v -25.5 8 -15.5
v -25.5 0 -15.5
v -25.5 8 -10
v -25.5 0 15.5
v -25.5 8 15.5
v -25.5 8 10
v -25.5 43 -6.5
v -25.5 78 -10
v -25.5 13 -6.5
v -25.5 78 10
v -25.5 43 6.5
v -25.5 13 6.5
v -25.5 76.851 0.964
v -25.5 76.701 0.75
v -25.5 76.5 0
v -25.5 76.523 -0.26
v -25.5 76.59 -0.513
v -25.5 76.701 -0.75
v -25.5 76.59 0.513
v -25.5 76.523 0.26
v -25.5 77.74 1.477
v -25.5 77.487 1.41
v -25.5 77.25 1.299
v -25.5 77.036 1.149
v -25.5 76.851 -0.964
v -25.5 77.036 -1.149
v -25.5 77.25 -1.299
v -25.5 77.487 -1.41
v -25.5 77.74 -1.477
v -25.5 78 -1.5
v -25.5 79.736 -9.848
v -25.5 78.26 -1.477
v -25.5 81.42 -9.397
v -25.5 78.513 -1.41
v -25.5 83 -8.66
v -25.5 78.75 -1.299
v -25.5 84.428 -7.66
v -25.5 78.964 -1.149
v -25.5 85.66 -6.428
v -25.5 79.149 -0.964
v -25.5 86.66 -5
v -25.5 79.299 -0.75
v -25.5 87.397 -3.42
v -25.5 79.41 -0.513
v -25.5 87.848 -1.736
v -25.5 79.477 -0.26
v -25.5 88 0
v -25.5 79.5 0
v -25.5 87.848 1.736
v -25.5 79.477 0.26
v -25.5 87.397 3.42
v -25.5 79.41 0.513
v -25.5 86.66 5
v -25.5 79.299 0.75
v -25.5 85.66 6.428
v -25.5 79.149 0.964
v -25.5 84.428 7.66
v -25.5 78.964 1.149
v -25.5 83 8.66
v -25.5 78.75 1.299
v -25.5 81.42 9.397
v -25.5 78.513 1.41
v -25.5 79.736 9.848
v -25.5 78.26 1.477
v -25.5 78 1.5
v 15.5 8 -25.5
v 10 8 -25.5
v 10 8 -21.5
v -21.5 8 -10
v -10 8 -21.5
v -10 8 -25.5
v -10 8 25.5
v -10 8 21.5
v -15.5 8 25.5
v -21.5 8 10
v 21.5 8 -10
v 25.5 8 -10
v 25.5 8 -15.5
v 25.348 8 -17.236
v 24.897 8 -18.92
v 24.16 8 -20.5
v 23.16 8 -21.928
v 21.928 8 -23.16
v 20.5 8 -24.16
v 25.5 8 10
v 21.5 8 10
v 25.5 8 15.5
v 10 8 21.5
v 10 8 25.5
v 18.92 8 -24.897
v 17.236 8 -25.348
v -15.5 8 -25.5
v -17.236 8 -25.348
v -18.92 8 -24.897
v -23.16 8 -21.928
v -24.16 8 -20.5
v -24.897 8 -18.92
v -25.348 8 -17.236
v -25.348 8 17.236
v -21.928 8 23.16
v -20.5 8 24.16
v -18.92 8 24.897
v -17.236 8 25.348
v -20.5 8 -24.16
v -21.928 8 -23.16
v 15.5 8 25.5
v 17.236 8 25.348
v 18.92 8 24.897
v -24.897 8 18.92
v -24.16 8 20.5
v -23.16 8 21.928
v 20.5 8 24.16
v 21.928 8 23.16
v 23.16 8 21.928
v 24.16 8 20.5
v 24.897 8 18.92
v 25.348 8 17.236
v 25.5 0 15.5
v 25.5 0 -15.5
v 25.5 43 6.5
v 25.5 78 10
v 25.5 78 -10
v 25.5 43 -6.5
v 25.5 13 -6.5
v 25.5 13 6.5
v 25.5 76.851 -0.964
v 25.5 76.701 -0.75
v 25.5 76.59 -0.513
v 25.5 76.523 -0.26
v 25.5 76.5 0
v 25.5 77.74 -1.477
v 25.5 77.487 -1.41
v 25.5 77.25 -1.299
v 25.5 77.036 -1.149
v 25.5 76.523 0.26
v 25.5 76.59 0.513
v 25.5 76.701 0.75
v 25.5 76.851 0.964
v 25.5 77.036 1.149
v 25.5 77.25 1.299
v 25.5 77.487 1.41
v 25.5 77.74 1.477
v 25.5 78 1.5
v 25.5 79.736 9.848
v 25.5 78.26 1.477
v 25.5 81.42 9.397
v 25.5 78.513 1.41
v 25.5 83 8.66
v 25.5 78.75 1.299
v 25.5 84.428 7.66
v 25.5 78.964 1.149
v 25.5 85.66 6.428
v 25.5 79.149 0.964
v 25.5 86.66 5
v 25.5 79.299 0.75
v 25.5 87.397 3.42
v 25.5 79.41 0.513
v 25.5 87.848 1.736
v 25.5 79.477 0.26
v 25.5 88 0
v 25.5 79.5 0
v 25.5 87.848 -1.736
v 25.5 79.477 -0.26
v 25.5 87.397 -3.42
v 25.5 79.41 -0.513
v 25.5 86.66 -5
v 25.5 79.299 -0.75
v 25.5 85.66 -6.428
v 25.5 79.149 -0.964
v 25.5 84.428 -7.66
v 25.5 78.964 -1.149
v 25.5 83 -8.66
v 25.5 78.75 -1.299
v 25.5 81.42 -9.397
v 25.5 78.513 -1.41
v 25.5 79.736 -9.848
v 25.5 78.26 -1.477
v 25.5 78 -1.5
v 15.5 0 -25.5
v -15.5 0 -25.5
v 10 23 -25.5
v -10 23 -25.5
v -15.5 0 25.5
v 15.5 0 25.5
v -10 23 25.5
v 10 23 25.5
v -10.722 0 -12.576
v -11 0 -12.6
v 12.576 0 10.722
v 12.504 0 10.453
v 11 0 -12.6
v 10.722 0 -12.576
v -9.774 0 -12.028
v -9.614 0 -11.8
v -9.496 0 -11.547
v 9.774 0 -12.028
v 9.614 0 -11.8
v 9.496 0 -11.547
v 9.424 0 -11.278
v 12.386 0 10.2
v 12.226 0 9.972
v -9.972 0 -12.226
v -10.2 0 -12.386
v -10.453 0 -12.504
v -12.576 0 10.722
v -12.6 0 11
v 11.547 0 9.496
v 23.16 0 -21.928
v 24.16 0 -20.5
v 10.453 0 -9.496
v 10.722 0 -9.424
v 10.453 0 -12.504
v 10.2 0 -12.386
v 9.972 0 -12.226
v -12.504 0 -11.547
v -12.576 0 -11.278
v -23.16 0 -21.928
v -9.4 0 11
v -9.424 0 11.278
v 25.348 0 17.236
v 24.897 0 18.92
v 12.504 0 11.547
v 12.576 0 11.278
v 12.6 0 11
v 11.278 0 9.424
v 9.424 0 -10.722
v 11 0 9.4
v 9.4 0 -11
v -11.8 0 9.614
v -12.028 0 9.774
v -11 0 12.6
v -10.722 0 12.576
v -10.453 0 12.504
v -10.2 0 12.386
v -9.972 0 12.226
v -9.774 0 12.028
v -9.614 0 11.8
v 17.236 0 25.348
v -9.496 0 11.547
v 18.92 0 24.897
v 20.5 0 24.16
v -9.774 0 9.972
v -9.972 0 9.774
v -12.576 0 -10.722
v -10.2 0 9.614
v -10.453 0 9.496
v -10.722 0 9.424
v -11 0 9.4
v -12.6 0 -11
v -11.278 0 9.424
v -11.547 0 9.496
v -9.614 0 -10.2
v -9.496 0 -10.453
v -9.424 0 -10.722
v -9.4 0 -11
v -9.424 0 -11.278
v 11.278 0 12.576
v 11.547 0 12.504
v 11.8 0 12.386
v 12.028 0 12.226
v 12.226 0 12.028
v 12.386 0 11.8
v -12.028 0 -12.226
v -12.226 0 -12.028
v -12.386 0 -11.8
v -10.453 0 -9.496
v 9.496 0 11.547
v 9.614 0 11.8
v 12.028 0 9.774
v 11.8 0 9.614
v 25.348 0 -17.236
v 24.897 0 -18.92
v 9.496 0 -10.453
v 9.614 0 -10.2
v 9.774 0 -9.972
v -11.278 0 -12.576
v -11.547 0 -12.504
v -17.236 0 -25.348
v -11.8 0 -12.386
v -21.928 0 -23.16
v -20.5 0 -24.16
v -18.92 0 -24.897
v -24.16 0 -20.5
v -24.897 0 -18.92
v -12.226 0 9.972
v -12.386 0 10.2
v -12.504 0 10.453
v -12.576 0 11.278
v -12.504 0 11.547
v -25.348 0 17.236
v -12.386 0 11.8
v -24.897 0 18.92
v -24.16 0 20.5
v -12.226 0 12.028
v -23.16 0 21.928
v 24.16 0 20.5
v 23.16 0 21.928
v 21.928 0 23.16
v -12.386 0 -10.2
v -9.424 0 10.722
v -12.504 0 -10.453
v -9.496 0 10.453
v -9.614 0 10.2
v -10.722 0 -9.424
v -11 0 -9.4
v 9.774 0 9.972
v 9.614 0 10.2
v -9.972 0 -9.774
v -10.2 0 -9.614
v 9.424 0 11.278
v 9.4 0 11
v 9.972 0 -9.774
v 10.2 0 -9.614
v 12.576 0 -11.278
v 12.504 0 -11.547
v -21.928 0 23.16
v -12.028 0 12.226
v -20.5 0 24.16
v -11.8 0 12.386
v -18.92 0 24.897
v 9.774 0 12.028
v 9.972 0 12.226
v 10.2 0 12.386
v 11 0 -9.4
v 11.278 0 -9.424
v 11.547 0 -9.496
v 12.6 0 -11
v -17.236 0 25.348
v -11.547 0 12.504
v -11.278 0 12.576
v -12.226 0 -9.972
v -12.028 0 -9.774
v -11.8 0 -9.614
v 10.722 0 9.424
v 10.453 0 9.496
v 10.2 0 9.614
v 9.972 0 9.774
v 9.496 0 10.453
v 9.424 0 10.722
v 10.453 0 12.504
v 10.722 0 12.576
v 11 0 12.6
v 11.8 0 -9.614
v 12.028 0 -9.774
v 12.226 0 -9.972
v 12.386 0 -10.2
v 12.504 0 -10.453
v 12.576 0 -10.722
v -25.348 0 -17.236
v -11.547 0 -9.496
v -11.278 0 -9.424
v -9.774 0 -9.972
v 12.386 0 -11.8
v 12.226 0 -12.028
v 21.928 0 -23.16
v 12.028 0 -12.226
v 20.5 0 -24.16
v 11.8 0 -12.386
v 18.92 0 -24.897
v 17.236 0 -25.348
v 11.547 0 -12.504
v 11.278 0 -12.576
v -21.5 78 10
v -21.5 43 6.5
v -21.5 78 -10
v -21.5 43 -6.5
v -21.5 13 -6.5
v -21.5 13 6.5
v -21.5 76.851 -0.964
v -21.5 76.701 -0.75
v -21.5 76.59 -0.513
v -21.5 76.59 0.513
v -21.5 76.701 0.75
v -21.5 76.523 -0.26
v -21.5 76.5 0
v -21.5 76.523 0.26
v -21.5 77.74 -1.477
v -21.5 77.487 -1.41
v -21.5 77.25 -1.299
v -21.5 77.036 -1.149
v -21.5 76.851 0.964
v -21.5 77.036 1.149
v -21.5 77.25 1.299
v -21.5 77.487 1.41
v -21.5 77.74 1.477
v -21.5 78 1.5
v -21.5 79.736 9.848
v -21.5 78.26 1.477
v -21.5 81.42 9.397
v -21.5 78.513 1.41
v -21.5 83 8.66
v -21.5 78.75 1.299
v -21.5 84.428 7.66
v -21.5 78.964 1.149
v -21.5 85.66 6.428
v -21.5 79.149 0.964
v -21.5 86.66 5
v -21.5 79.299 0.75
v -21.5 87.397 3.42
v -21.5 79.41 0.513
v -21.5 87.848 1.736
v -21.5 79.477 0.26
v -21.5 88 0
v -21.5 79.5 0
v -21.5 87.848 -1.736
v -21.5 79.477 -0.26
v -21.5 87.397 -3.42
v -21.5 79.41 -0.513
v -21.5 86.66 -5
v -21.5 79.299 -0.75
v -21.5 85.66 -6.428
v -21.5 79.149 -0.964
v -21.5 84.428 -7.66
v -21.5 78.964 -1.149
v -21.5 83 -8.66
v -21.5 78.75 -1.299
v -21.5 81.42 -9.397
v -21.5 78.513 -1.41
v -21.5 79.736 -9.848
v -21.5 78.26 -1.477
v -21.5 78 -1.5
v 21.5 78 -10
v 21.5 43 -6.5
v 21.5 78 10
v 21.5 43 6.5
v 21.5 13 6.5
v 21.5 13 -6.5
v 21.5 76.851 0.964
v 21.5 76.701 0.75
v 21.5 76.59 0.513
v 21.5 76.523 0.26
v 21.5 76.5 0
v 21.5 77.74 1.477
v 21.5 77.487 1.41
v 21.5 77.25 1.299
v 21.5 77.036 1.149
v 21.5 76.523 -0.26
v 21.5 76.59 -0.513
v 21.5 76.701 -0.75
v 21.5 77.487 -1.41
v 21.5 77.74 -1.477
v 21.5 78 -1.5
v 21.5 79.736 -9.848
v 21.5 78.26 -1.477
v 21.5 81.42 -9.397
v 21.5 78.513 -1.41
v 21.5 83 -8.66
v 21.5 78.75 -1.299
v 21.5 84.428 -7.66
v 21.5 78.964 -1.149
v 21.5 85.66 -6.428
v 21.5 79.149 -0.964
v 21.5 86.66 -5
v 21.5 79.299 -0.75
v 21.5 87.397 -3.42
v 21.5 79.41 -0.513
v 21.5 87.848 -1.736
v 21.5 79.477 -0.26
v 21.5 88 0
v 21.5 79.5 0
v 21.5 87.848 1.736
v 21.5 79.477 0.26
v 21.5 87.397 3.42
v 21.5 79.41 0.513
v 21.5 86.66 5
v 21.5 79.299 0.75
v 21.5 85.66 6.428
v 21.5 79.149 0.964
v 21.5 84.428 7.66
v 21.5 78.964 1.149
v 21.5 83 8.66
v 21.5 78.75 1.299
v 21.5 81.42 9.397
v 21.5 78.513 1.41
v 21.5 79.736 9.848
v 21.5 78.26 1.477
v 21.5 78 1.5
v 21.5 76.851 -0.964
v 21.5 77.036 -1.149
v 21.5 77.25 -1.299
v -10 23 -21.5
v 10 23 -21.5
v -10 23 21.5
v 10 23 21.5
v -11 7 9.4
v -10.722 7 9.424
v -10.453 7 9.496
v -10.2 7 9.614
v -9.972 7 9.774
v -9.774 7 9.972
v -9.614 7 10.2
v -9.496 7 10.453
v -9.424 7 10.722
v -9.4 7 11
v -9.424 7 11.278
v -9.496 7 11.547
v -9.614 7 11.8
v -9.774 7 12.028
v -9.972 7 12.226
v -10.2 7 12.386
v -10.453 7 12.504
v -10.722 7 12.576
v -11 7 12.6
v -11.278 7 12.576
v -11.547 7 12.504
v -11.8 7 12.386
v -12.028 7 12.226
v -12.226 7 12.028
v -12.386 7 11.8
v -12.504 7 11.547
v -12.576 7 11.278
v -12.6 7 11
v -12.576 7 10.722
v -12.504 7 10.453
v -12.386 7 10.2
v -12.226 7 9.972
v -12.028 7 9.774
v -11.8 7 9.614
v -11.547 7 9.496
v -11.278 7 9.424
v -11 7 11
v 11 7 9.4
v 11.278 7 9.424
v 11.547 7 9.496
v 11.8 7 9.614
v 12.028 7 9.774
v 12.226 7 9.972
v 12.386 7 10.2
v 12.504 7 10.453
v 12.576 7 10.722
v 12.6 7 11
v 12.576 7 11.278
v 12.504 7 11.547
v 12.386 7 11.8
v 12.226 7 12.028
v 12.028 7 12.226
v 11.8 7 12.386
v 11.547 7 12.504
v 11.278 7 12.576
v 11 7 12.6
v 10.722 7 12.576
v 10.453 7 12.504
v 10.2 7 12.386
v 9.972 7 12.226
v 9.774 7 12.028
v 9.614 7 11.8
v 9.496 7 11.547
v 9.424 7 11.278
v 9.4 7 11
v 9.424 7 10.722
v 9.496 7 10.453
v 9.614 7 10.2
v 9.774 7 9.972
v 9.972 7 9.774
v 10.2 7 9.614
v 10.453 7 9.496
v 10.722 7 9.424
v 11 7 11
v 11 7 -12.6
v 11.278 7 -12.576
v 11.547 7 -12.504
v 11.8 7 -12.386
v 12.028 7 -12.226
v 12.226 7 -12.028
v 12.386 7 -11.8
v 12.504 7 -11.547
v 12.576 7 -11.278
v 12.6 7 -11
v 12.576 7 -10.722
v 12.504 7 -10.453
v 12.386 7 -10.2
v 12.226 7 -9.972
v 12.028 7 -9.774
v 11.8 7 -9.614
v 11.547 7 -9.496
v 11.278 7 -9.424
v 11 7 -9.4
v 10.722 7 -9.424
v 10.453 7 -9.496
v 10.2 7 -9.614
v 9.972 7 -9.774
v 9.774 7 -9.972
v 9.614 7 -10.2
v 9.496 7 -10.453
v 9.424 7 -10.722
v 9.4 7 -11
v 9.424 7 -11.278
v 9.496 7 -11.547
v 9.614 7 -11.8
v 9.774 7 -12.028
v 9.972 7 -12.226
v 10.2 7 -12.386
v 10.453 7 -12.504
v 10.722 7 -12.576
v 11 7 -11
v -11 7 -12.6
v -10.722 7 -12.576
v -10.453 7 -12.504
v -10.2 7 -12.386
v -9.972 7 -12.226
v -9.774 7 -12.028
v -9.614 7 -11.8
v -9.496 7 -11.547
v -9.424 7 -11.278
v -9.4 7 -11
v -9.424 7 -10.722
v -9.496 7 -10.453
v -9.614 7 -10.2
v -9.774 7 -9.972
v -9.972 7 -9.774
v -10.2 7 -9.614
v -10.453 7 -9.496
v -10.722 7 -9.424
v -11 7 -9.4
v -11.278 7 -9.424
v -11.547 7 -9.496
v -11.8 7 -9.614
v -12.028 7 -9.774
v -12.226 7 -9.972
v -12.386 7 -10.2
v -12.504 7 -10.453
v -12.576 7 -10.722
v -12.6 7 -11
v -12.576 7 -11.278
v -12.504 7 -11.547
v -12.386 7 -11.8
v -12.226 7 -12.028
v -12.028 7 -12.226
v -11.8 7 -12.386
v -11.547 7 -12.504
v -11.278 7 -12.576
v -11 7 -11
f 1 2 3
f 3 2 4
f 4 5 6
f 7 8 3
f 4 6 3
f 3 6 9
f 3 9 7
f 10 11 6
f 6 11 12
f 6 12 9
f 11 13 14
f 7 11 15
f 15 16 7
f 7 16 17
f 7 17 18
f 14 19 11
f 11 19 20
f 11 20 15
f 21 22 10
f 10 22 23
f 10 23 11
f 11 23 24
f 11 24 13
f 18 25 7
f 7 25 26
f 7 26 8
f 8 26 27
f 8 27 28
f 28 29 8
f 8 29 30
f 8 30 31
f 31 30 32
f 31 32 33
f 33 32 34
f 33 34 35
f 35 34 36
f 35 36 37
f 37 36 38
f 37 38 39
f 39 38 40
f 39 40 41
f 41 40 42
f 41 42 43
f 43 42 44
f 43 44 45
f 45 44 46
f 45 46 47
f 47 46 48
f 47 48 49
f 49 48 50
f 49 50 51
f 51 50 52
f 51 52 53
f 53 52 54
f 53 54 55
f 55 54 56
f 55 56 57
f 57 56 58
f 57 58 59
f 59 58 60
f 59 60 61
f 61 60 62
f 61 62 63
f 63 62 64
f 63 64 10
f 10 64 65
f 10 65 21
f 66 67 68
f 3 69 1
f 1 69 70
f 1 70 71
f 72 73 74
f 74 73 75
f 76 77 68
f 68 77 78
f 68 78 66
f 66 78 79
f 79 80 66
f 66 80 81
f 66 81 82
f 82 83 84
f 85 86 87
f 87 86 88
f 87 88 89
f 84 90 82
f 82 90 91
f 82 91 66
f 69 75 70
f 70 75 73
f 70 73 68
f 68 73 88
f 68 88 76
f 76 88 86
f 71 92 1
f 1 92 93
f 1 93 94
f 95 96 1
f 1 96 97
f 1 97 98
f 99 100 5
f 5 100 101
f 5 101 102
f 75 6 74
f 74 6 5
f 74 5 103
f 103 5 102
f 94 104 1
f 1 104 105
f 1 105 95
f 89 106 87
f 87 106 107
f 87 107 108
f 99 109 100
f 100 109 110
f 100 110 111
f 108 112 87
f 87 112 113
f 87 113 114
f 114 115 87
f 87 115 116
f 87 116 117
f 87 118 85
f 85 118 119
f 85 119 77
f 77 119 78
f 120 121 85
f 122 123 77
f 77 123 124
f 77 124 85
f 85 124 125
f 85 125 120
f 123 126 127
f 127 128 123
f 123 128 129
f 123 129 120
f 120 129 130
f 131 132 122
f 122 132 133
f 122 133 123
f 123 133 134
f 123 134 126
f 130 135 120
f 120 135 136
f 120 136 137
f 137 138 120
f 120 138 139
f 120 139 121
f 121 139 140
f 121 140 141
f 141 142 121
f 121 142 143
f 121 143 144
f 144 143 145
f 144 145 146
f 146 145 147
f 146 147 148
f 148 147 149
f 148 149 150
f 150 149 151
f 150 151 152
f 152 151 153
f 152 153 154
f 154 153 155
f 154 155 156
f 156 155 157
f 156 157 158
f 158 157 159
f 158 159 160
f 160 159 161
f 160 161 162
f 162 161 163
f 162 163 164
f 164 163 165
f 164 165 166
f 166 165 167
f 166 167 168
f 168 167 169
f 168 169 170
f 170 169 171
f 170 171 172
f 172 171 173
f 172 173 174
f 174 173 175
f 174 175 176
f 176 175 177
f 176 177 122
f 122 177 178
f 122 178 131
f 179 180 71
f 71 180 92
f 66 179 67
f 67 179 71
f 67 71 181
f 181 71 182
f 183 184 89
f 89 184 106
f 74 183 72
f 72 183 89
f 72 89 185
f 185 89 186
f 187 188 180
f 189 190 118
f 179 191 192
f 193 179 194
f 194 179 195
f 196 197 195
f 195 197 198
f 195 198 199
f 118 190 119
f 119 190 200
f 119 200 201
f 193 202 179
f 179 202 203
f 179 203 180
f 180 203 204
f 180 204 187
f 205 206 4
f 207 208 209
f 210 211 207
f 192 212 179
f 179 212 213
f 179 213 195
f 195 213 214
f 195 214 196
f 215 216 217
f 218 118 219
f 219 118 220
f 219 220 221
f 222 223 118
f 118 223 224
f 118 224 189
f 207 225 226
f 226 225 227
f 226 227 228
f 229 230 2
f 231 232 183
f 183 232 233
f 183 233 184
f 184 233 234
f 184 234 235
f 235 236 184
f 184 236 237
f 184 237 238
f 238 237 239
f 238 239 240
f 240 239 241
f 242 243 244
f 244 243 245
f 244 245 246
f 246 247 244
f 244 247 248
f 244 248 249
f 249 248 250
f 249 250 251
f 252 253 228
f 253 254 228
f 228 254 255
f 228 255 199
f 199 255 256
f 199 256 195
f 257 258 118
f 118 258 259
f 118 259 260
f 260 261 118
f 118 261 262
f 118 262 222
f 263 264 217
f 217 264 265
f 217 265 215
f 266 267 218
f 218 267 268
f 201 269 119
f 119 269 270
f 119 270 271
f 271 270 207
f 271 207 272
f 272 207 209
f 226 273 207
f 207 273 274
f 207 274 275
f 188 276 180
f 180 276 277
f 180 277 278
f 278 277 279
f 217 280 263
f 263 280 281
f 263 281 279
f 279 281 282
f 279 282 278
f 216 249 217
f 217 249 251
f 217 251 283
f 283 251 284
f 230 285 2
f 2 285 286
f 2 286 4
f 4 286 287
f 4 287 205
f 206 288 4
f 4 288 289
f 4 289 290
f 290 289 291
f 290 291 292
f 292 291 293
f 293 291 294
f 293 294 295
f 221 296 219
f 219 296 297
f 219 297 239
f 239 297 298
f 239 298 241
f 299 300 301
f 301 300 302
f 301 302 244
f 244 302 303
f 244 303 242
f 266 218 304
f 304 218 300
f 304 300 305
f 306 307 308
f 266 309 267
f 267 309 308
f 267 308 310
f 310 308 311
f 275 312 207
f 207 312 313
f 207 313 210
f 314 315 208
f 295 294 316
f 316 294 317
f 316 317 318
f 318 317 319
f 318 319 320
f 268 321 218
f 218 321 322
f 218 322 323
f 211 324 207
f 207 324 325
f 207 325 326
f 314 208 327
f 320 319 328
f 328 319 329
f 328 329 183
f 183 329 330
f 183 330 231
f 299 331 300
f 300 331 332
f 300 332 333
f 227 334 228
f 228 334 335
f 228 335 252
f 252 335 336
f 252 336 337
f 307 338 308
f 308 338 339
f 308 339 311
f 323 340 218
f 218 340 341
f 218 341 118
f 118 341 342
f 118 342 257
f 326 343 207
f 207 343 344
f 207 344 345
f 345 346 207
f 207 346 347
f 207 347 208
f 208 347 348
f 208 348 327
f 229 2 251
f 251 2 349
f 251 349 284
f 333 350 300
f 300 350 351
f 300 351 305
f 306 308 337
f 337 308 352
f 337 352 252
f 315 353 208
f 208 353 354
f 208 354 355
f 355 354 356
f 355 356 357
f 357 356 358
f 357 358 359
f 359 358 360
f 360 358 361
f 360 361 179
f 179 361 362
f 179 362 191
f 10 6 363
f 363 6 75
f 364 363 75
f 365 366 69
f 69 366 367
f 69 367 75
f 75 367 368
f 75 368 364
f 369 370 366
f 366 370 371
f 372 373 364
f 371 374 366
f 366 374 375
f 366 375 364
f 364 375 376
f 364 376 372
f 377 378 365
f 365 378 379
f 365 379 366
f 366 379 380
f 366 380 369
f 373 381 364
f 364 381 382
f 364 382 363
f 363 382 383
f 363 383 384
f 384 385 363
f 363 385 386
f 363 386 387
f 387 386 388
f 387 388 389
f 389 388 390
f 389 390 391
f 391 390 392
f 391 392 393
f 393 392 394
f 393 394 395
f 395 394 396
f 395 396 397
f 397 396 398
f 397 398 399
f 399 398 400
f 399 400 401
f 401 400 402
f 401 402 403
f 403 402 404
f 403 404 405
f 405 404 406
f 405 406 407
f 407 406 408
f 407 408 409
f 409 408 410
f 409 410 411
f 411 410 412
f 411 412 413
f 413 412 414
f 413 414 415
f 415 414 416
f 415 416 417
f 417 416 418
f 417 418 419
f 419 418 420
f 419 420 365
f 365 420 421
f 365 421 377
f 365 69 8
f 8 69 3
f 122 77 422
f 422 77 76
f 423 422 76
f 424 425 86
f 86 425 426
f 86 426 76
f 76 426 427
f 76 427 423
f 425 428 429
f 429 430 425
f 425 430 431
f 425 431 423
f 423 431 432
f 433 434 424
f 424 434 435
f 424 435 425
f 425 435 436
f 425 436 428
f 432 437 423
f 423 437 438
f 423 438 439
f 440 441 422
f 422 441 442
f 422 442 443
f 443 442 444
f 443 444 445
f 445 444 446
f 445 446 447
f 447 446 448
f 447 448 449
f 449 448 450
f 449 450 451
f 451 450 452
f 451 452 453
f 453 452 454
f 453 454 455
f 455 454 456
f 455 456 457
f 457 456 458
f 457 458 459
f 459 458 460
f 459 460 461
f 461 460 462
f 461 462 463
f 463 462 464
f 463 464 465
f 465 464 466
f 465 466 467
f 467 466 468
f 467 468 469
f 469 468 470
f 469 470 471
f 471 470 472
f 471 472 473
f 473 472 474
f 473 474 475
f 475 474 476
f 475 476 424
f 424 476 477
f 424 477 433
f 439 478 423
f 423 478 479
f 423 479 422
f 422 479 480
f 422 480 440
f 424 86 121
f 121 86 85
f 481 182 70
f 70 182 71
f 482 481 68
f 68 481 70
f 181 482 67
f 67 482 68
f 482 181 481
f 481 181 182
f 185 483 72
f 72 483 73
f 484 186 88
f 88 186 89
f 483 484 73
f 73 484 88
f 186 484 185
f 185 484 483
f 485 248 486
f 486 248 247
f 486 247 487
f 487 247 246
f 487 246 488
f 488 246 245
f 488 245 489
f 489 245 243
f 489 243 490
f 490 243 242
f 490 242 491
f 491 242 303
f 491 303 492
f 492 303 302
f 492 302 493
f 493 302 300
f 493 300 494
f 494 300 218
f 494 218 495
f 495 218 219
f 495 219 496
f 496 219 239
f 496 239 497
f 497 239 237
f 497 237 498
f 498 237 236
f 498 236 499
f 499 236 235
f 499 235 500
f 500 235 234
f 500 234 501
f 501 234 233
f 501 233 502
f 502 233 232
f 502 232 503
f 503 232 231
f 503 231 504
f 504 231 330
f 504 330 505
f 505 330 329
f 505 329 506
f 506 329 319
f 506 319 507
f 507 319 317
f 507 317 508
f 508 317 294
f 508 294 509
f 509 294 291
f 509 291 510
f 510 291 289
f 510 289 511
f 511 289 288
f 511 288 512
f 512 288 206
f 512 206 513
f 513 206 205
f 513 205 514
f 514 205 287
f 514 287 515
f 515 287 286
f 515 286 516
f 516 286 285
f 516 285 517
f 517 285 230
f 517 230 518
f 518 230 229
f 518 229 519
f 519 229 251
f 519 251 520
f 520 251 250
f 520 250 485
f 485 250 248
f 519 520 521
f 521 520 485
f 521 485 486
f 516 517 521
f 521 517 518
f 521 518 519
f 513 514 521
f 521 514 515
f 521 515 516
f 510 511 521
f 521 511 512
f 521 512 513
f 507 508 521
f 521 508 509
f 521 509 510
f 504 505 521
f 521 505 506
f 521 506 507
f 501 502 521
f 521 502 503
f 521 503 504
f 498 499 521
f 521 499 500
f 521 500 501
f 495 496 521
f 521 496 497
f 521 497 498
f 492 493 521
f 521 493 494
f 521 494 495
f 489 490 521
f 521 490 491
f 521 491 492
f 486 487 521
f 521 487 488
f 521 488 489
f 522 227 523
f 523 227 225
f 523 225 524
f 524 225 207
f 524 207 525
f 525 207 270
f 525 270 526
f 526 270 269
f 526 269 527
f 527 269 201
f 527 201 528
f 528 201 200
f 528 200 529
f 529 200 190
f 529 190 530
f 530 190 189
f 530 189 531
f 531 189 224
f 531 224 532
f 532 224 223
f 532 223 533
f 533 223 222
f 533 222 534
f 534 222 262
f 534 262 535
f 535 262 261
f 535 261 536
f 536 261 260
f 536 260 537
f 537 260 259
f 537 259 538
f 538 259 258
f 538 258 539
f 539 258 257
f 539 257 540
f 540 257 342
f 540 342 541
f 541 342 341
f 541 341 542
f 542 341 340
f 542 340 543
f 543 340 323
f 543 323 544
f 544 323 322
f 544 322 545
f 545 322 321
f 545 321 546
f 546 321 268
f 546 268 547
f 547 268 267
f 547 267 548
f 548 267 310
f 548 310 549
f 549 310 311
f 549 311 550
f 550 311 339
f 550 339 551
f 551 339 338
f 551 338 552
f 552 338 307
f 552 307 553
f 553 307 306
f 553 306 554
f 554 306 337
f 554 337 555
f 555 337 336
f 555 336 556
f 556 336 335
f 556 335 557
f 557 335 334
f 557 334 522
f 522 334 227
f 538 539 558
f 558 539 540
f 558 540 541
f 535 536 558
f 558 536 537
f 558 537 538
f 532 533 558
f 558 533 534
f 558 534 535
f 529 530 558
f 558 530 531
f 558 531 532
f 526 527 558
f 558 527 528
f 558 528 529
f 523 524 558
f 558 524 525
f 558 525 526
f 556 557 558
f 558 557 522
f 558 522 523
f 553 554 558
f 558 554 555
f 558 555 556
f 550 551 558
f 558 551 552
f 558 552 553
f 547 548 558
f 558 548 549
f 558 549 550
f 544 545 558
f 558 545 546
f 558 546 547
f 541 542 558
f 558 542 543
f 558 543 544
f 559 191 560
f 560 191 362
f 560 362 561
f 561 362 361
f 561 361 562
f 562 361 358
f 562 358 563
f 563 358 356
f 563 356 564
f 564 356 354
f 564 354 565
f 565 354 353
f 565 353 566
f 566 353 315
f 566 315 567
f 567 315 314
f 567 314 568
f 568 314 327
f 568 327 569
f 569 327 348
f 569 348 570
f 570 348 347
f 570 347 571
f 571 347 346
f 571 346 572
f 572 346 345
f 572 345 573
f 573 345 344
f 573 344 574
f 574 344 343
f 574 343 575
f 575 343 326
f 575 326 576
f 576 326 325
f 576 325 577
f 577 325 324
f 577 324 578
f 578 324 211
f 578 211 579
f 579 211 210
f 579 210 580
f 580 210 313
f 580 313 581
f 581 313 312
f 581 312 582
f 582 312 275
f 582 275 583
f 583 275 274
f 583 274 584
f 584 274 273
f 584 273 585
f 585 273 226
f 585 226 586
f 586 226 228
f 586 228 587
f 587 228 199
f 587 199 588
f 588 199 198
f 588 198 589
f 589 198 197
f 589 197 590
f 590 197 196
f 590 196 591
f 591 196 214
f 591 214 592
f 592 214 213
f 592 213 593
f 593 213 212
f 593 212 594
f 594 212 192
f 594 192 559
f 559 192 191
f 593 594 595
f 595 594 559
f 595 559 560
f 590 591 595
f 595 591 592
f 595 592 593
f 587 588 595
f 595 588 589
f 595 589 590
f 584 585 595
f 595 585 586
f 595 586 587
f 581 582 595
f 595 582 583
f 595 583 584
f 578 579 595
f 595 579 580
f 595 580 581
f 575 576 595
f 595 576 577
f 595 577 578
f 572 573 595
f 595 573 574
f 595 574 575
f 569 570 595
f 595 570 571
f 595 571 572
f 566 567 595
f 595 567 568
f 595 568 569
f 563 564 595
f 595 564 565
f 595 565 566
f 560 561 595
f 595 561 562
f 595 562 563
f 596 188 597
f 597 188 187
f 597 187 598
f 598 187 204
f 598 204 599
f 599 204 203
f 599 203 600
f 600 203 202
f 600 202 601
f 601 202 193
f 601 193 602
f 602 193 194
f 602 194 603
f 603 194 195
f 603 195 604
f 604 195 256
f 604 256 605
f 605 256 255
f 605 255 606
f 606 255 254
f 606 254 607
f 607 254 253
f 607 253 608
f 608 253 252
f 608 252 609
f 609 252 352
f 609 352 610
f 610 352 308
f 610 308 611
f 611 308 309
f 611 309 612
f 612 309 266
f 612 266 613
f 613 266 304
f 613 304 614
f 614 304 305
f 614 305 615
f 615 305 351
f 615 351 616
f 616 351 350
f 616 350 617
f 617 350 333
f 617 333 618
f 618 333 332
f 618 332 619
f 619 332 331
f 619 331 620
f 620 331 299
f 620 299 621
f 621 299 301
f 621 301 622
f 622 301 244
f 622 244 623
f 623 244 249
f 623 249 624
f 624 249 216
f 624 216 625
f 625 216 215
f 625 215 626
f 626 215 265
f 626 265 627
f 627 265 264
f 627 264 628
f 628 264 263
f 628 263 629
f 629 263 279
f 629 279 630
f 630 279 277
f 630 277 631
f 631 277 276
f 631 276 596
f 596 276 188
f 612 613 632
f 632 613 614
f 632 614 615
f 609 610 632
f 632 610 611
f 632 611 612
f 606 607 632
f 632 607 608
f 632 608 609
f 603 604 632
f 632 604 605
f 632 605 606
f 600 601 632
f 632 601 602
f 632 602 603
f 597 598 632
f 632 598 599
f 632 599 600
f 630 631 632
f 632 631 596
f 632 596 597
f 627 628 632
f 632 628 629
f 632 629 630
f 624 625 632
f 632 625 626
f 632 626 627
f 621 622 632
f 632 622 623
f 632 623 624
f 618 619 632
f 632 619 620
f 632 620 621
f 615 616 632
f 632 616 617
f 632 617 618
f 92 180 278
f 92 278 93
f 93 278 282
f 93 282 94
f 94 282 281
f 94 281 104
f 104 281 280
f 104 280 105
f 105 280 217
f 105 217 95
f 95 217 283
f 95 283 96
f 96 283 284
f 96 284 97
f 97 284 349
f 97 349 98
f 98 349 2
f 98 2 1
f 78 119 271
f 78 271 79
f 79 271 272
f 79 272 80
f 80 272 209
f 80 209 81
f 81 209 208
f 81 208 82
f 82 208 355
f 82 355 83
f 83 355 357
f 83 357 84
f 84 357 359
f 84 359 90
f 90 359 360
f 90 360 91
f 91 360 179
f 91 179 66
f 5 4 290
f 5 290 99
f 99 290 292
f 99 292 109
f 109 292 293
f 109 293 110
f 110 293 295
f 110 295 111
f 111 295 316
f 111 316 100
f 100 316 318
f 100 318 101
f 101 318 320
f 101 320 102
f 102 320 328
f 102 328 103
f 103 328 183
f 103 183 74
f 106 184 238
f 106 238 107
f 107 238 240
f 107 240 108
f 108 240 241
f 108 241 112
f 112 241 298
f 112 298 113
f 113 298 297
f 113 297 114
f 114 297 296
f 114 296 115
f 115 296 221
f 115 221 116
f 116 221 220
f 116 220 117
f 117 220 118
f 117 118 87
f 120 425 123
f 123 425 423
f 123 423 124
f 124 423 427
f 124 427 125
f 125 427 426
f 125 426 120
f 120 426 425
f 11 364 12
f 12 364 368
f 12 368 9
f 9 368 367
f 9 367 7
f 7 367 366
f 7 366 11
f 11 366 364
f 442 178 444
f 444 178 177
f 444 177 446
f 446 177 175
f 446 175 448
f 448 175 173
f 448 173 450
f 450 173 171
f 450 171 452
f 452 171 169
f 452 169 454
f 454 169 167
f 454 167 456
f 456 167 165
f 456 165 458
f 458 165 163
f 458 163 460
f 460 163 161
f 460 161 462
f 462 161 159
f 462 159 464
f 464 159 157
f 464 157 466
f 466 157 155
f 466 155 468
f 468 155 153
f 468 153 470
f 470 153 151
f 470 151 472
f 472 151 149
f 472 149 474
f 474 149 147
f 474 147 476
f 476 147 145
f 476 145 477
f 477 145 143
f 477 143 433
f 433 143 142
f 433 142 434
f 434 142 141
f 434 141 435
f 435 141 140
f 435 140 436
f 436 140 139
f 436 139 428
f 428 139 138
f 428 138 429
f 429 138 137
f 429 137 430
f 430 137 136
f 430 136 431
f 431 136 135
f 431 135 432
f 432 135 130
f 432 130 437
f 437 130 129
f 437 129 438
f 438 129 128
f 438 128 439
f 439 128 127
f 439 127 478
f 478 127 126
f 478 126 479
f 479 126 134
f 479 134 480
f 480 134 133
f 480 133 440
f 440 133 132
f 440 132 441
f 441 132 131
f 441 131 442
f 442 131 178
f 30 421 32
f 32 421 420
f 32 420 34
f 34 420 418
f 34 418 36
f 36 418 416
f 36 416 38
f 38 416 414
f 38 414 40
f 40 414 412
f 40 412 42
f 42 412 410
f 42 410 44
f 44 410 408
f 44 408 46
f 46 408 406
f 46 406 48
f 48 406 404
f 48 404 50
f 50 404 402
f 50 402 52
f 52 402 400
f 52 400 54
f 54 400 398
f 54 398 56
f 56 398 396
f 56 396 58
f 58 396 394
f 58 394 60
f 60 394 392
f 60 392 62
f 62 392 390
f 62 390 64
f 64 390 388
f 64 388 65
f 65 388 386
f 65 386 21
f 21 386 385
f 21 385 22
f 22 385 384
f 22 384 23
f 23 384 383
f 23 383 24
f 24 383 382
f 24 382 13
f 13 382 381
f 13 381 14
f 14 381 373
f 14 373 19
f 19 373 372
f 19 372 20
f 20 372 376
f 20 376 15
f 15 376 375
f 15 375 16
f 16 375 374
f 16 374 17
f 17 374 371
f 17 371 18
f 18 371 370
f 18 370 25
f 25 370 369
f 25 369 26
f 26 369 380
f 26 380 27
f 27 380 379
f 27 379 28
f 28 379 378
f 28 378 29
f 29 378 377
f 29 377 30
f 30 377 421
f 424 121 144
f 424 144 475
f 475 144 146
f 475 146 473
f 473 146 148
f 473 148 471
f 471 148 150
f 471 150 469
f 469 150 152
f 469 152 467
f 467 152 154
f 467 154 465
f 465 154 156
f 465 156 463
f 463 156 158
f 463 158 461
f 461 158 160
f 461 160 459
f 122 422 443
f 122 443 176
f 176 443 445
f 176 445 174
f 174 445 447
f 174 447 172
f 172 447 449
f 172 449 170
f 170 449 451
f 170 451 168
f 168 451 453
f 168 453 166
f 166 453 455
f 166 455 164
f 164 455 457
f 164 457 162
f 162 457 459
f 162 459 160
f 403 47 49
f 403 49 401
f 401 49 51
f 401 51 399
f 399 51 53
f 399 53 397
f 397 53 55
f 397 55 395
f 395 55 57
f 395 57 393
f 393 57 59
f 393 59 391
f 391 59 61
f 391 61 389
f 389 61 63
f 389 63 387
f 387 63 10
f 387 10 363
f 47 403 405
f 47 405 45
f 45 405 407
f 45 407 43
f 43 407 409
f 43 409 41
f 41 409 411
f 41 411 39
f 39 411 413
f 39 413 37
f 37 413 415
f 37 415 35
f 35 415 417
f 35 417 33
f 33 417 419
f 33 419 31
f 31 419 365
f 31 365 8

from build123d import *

# Parameters (mm, degrees)
ESBO_O1_W                  = 51
ESBO_O1_H                  = 51
RESSALTO_EXTRUS_O1_DEPTH   = 8
ESBO_O2_W                  = 4
ESBO_O2_H                  = 20
RESSALTO_EXTRUS_O2_DEPTH   = 80
ESBO_O4_W                  = 20
ESBO_O4_H                  = 4
RESSALTO_EXTRUS_O3_DEPTH   = 15
ESBO_O5_R                  = 1.6
CORTE_EXTRUS_O2_DEPTH      = 7
FILETE2_R                  = 10
CORTE_EXTRUS_O3_DEPTH      = 105.858237635
CORTE_EXTRUS_O3_DEPTH_BACK = 105.858237635
ESBO_O6_W                  = 13
ESBO_O6_H                  = 30
ESBO_O7_R                  = 1.5
CORTE_EXTRUS_O4_DEPTH      = 105.858237635
FILETE6_R                  = 10


with BuildPart() as part:
    # Esboço1 → Ressalto-extrusão1 (new body)
    with BuildSketch(Plane(origin=(0, 0, 0), x_dir=(1, 0, 0), z_dir=(0, 1, 0))):
        Rectangle(ESBO_O1_W, ESBO_O1_H)
    extrude(amount=RESSALTO_EXTRUS_O1_DEPTH)

    # Esboço2 → Ressalto-extrusão2 (add)
    with BuildSketch(Plane(origin=(0, 8, 0), x_dir=(1, 0, 0), z_dir=(0, 1, 0))):
        with Locations((-23.5, 0)):
            Rectangle(ESBO_O2_W, ESBO_O2_H)
        with Locations((23.5, 0)):
            Rectangle(ESBO_O2_W, ESBO_O2_H)
    extrude(amount=RESSALTO_EXTRUS_O2_DEPTH)

    # Esboço4 → Ressalto-extrusão3 (add)
    with BuildSketch(Plane(origin=(0, 8, 0), x_dir=(1, 0, 0), z_dir=(0, 1, 0))):
        with Locations((0, 23.5)):
            Rectangle(ESBO_O4_W, ESBO_O4_H)
        with Locations((0, -23.5)):
            Rectangle(ESBO_O4_W, ESBO_O4_H)
    extrude(amount=RESSALTO_EXTRUS_O3_DEPTH)

    # Esboço5 → Corte-extrusão2 (cut)
    with BuildSketch(Plane.XZ):
        with Locations(Location((-11, 11, 0), (0, 0, 270))):
            Circle(ESBO_O5_R)
        with Locations(Location((11, 11, 0), (0, 0, 90))):
            Circle(ESBO_O5_R)
        with Locations(Location((11, -11, 0), (0, 0, 270))):
            Circle(ESBO_O5_R)
        with Locations(Location((-11, -11, 0), (0, 0, 90))):
            Circle(ESBO_O5_R)
    extrude(amount=-CORTE_EXTRUS_O2_DEPTH, mode=Mode.SUBTRACT)

    # Filete2
    filete2_edges = [part.edges().sort_by_distance(p)[0] for p in [
        (25.5, 4, 25.5),
        (-25.5, 4, 25.5),
        (-25.5, 4, -25.5),
        (25.5, 4, -25.5),
    ]]
    fillet(filete2_edges, radius=FILETE2_R)

    # Esboço6 → Corte-extrusão3 (cut, two sides: drawn at the far end of the back side and taken through both)
    with BuildSketch(Plane.ZY.offset(25.5).offset(-CORTE_EXTRUS_O3_DEPTH_BACK)):
        with Locations((0, 28)):
            Rectangle(ESBO_O6_W, ESBO_O6_H)
    extrude(amount=CORTE_EXTRUS_O3_DEPTH + CORTE_EXTRUS_O3_DEPTH_BACK, mode=Mode.SUBTRACT)

    # Esboço7 → Corte-extrusão4 (cut, through all)
    with BuildSketch(Plane(origin=(25.5, 0, 0), x_dir=(0, 0, -1), z_dir=(1, 0, 0))):
        with Locations((0, 78)):
            Circle(ESBO_O7_R)
    extrude(amount=-CORTE_EXTRUS_O4_DEPTH, mode=Mode.SUBTRACT)

    # Filete6
    filete6_edges = [part.edges().sort_by_distance(p)[0] for p in [
        (23.5, 88, -10),
        (23.5, 88, 10),
        (-23.5, 88, -10),
        (-23.5, 88, 10),
    ]]
    fillet(filete6_edges, radius=FILETE6_R - 0.0001)  # a hair under: the kernel refuses the full size


solid = part.part
